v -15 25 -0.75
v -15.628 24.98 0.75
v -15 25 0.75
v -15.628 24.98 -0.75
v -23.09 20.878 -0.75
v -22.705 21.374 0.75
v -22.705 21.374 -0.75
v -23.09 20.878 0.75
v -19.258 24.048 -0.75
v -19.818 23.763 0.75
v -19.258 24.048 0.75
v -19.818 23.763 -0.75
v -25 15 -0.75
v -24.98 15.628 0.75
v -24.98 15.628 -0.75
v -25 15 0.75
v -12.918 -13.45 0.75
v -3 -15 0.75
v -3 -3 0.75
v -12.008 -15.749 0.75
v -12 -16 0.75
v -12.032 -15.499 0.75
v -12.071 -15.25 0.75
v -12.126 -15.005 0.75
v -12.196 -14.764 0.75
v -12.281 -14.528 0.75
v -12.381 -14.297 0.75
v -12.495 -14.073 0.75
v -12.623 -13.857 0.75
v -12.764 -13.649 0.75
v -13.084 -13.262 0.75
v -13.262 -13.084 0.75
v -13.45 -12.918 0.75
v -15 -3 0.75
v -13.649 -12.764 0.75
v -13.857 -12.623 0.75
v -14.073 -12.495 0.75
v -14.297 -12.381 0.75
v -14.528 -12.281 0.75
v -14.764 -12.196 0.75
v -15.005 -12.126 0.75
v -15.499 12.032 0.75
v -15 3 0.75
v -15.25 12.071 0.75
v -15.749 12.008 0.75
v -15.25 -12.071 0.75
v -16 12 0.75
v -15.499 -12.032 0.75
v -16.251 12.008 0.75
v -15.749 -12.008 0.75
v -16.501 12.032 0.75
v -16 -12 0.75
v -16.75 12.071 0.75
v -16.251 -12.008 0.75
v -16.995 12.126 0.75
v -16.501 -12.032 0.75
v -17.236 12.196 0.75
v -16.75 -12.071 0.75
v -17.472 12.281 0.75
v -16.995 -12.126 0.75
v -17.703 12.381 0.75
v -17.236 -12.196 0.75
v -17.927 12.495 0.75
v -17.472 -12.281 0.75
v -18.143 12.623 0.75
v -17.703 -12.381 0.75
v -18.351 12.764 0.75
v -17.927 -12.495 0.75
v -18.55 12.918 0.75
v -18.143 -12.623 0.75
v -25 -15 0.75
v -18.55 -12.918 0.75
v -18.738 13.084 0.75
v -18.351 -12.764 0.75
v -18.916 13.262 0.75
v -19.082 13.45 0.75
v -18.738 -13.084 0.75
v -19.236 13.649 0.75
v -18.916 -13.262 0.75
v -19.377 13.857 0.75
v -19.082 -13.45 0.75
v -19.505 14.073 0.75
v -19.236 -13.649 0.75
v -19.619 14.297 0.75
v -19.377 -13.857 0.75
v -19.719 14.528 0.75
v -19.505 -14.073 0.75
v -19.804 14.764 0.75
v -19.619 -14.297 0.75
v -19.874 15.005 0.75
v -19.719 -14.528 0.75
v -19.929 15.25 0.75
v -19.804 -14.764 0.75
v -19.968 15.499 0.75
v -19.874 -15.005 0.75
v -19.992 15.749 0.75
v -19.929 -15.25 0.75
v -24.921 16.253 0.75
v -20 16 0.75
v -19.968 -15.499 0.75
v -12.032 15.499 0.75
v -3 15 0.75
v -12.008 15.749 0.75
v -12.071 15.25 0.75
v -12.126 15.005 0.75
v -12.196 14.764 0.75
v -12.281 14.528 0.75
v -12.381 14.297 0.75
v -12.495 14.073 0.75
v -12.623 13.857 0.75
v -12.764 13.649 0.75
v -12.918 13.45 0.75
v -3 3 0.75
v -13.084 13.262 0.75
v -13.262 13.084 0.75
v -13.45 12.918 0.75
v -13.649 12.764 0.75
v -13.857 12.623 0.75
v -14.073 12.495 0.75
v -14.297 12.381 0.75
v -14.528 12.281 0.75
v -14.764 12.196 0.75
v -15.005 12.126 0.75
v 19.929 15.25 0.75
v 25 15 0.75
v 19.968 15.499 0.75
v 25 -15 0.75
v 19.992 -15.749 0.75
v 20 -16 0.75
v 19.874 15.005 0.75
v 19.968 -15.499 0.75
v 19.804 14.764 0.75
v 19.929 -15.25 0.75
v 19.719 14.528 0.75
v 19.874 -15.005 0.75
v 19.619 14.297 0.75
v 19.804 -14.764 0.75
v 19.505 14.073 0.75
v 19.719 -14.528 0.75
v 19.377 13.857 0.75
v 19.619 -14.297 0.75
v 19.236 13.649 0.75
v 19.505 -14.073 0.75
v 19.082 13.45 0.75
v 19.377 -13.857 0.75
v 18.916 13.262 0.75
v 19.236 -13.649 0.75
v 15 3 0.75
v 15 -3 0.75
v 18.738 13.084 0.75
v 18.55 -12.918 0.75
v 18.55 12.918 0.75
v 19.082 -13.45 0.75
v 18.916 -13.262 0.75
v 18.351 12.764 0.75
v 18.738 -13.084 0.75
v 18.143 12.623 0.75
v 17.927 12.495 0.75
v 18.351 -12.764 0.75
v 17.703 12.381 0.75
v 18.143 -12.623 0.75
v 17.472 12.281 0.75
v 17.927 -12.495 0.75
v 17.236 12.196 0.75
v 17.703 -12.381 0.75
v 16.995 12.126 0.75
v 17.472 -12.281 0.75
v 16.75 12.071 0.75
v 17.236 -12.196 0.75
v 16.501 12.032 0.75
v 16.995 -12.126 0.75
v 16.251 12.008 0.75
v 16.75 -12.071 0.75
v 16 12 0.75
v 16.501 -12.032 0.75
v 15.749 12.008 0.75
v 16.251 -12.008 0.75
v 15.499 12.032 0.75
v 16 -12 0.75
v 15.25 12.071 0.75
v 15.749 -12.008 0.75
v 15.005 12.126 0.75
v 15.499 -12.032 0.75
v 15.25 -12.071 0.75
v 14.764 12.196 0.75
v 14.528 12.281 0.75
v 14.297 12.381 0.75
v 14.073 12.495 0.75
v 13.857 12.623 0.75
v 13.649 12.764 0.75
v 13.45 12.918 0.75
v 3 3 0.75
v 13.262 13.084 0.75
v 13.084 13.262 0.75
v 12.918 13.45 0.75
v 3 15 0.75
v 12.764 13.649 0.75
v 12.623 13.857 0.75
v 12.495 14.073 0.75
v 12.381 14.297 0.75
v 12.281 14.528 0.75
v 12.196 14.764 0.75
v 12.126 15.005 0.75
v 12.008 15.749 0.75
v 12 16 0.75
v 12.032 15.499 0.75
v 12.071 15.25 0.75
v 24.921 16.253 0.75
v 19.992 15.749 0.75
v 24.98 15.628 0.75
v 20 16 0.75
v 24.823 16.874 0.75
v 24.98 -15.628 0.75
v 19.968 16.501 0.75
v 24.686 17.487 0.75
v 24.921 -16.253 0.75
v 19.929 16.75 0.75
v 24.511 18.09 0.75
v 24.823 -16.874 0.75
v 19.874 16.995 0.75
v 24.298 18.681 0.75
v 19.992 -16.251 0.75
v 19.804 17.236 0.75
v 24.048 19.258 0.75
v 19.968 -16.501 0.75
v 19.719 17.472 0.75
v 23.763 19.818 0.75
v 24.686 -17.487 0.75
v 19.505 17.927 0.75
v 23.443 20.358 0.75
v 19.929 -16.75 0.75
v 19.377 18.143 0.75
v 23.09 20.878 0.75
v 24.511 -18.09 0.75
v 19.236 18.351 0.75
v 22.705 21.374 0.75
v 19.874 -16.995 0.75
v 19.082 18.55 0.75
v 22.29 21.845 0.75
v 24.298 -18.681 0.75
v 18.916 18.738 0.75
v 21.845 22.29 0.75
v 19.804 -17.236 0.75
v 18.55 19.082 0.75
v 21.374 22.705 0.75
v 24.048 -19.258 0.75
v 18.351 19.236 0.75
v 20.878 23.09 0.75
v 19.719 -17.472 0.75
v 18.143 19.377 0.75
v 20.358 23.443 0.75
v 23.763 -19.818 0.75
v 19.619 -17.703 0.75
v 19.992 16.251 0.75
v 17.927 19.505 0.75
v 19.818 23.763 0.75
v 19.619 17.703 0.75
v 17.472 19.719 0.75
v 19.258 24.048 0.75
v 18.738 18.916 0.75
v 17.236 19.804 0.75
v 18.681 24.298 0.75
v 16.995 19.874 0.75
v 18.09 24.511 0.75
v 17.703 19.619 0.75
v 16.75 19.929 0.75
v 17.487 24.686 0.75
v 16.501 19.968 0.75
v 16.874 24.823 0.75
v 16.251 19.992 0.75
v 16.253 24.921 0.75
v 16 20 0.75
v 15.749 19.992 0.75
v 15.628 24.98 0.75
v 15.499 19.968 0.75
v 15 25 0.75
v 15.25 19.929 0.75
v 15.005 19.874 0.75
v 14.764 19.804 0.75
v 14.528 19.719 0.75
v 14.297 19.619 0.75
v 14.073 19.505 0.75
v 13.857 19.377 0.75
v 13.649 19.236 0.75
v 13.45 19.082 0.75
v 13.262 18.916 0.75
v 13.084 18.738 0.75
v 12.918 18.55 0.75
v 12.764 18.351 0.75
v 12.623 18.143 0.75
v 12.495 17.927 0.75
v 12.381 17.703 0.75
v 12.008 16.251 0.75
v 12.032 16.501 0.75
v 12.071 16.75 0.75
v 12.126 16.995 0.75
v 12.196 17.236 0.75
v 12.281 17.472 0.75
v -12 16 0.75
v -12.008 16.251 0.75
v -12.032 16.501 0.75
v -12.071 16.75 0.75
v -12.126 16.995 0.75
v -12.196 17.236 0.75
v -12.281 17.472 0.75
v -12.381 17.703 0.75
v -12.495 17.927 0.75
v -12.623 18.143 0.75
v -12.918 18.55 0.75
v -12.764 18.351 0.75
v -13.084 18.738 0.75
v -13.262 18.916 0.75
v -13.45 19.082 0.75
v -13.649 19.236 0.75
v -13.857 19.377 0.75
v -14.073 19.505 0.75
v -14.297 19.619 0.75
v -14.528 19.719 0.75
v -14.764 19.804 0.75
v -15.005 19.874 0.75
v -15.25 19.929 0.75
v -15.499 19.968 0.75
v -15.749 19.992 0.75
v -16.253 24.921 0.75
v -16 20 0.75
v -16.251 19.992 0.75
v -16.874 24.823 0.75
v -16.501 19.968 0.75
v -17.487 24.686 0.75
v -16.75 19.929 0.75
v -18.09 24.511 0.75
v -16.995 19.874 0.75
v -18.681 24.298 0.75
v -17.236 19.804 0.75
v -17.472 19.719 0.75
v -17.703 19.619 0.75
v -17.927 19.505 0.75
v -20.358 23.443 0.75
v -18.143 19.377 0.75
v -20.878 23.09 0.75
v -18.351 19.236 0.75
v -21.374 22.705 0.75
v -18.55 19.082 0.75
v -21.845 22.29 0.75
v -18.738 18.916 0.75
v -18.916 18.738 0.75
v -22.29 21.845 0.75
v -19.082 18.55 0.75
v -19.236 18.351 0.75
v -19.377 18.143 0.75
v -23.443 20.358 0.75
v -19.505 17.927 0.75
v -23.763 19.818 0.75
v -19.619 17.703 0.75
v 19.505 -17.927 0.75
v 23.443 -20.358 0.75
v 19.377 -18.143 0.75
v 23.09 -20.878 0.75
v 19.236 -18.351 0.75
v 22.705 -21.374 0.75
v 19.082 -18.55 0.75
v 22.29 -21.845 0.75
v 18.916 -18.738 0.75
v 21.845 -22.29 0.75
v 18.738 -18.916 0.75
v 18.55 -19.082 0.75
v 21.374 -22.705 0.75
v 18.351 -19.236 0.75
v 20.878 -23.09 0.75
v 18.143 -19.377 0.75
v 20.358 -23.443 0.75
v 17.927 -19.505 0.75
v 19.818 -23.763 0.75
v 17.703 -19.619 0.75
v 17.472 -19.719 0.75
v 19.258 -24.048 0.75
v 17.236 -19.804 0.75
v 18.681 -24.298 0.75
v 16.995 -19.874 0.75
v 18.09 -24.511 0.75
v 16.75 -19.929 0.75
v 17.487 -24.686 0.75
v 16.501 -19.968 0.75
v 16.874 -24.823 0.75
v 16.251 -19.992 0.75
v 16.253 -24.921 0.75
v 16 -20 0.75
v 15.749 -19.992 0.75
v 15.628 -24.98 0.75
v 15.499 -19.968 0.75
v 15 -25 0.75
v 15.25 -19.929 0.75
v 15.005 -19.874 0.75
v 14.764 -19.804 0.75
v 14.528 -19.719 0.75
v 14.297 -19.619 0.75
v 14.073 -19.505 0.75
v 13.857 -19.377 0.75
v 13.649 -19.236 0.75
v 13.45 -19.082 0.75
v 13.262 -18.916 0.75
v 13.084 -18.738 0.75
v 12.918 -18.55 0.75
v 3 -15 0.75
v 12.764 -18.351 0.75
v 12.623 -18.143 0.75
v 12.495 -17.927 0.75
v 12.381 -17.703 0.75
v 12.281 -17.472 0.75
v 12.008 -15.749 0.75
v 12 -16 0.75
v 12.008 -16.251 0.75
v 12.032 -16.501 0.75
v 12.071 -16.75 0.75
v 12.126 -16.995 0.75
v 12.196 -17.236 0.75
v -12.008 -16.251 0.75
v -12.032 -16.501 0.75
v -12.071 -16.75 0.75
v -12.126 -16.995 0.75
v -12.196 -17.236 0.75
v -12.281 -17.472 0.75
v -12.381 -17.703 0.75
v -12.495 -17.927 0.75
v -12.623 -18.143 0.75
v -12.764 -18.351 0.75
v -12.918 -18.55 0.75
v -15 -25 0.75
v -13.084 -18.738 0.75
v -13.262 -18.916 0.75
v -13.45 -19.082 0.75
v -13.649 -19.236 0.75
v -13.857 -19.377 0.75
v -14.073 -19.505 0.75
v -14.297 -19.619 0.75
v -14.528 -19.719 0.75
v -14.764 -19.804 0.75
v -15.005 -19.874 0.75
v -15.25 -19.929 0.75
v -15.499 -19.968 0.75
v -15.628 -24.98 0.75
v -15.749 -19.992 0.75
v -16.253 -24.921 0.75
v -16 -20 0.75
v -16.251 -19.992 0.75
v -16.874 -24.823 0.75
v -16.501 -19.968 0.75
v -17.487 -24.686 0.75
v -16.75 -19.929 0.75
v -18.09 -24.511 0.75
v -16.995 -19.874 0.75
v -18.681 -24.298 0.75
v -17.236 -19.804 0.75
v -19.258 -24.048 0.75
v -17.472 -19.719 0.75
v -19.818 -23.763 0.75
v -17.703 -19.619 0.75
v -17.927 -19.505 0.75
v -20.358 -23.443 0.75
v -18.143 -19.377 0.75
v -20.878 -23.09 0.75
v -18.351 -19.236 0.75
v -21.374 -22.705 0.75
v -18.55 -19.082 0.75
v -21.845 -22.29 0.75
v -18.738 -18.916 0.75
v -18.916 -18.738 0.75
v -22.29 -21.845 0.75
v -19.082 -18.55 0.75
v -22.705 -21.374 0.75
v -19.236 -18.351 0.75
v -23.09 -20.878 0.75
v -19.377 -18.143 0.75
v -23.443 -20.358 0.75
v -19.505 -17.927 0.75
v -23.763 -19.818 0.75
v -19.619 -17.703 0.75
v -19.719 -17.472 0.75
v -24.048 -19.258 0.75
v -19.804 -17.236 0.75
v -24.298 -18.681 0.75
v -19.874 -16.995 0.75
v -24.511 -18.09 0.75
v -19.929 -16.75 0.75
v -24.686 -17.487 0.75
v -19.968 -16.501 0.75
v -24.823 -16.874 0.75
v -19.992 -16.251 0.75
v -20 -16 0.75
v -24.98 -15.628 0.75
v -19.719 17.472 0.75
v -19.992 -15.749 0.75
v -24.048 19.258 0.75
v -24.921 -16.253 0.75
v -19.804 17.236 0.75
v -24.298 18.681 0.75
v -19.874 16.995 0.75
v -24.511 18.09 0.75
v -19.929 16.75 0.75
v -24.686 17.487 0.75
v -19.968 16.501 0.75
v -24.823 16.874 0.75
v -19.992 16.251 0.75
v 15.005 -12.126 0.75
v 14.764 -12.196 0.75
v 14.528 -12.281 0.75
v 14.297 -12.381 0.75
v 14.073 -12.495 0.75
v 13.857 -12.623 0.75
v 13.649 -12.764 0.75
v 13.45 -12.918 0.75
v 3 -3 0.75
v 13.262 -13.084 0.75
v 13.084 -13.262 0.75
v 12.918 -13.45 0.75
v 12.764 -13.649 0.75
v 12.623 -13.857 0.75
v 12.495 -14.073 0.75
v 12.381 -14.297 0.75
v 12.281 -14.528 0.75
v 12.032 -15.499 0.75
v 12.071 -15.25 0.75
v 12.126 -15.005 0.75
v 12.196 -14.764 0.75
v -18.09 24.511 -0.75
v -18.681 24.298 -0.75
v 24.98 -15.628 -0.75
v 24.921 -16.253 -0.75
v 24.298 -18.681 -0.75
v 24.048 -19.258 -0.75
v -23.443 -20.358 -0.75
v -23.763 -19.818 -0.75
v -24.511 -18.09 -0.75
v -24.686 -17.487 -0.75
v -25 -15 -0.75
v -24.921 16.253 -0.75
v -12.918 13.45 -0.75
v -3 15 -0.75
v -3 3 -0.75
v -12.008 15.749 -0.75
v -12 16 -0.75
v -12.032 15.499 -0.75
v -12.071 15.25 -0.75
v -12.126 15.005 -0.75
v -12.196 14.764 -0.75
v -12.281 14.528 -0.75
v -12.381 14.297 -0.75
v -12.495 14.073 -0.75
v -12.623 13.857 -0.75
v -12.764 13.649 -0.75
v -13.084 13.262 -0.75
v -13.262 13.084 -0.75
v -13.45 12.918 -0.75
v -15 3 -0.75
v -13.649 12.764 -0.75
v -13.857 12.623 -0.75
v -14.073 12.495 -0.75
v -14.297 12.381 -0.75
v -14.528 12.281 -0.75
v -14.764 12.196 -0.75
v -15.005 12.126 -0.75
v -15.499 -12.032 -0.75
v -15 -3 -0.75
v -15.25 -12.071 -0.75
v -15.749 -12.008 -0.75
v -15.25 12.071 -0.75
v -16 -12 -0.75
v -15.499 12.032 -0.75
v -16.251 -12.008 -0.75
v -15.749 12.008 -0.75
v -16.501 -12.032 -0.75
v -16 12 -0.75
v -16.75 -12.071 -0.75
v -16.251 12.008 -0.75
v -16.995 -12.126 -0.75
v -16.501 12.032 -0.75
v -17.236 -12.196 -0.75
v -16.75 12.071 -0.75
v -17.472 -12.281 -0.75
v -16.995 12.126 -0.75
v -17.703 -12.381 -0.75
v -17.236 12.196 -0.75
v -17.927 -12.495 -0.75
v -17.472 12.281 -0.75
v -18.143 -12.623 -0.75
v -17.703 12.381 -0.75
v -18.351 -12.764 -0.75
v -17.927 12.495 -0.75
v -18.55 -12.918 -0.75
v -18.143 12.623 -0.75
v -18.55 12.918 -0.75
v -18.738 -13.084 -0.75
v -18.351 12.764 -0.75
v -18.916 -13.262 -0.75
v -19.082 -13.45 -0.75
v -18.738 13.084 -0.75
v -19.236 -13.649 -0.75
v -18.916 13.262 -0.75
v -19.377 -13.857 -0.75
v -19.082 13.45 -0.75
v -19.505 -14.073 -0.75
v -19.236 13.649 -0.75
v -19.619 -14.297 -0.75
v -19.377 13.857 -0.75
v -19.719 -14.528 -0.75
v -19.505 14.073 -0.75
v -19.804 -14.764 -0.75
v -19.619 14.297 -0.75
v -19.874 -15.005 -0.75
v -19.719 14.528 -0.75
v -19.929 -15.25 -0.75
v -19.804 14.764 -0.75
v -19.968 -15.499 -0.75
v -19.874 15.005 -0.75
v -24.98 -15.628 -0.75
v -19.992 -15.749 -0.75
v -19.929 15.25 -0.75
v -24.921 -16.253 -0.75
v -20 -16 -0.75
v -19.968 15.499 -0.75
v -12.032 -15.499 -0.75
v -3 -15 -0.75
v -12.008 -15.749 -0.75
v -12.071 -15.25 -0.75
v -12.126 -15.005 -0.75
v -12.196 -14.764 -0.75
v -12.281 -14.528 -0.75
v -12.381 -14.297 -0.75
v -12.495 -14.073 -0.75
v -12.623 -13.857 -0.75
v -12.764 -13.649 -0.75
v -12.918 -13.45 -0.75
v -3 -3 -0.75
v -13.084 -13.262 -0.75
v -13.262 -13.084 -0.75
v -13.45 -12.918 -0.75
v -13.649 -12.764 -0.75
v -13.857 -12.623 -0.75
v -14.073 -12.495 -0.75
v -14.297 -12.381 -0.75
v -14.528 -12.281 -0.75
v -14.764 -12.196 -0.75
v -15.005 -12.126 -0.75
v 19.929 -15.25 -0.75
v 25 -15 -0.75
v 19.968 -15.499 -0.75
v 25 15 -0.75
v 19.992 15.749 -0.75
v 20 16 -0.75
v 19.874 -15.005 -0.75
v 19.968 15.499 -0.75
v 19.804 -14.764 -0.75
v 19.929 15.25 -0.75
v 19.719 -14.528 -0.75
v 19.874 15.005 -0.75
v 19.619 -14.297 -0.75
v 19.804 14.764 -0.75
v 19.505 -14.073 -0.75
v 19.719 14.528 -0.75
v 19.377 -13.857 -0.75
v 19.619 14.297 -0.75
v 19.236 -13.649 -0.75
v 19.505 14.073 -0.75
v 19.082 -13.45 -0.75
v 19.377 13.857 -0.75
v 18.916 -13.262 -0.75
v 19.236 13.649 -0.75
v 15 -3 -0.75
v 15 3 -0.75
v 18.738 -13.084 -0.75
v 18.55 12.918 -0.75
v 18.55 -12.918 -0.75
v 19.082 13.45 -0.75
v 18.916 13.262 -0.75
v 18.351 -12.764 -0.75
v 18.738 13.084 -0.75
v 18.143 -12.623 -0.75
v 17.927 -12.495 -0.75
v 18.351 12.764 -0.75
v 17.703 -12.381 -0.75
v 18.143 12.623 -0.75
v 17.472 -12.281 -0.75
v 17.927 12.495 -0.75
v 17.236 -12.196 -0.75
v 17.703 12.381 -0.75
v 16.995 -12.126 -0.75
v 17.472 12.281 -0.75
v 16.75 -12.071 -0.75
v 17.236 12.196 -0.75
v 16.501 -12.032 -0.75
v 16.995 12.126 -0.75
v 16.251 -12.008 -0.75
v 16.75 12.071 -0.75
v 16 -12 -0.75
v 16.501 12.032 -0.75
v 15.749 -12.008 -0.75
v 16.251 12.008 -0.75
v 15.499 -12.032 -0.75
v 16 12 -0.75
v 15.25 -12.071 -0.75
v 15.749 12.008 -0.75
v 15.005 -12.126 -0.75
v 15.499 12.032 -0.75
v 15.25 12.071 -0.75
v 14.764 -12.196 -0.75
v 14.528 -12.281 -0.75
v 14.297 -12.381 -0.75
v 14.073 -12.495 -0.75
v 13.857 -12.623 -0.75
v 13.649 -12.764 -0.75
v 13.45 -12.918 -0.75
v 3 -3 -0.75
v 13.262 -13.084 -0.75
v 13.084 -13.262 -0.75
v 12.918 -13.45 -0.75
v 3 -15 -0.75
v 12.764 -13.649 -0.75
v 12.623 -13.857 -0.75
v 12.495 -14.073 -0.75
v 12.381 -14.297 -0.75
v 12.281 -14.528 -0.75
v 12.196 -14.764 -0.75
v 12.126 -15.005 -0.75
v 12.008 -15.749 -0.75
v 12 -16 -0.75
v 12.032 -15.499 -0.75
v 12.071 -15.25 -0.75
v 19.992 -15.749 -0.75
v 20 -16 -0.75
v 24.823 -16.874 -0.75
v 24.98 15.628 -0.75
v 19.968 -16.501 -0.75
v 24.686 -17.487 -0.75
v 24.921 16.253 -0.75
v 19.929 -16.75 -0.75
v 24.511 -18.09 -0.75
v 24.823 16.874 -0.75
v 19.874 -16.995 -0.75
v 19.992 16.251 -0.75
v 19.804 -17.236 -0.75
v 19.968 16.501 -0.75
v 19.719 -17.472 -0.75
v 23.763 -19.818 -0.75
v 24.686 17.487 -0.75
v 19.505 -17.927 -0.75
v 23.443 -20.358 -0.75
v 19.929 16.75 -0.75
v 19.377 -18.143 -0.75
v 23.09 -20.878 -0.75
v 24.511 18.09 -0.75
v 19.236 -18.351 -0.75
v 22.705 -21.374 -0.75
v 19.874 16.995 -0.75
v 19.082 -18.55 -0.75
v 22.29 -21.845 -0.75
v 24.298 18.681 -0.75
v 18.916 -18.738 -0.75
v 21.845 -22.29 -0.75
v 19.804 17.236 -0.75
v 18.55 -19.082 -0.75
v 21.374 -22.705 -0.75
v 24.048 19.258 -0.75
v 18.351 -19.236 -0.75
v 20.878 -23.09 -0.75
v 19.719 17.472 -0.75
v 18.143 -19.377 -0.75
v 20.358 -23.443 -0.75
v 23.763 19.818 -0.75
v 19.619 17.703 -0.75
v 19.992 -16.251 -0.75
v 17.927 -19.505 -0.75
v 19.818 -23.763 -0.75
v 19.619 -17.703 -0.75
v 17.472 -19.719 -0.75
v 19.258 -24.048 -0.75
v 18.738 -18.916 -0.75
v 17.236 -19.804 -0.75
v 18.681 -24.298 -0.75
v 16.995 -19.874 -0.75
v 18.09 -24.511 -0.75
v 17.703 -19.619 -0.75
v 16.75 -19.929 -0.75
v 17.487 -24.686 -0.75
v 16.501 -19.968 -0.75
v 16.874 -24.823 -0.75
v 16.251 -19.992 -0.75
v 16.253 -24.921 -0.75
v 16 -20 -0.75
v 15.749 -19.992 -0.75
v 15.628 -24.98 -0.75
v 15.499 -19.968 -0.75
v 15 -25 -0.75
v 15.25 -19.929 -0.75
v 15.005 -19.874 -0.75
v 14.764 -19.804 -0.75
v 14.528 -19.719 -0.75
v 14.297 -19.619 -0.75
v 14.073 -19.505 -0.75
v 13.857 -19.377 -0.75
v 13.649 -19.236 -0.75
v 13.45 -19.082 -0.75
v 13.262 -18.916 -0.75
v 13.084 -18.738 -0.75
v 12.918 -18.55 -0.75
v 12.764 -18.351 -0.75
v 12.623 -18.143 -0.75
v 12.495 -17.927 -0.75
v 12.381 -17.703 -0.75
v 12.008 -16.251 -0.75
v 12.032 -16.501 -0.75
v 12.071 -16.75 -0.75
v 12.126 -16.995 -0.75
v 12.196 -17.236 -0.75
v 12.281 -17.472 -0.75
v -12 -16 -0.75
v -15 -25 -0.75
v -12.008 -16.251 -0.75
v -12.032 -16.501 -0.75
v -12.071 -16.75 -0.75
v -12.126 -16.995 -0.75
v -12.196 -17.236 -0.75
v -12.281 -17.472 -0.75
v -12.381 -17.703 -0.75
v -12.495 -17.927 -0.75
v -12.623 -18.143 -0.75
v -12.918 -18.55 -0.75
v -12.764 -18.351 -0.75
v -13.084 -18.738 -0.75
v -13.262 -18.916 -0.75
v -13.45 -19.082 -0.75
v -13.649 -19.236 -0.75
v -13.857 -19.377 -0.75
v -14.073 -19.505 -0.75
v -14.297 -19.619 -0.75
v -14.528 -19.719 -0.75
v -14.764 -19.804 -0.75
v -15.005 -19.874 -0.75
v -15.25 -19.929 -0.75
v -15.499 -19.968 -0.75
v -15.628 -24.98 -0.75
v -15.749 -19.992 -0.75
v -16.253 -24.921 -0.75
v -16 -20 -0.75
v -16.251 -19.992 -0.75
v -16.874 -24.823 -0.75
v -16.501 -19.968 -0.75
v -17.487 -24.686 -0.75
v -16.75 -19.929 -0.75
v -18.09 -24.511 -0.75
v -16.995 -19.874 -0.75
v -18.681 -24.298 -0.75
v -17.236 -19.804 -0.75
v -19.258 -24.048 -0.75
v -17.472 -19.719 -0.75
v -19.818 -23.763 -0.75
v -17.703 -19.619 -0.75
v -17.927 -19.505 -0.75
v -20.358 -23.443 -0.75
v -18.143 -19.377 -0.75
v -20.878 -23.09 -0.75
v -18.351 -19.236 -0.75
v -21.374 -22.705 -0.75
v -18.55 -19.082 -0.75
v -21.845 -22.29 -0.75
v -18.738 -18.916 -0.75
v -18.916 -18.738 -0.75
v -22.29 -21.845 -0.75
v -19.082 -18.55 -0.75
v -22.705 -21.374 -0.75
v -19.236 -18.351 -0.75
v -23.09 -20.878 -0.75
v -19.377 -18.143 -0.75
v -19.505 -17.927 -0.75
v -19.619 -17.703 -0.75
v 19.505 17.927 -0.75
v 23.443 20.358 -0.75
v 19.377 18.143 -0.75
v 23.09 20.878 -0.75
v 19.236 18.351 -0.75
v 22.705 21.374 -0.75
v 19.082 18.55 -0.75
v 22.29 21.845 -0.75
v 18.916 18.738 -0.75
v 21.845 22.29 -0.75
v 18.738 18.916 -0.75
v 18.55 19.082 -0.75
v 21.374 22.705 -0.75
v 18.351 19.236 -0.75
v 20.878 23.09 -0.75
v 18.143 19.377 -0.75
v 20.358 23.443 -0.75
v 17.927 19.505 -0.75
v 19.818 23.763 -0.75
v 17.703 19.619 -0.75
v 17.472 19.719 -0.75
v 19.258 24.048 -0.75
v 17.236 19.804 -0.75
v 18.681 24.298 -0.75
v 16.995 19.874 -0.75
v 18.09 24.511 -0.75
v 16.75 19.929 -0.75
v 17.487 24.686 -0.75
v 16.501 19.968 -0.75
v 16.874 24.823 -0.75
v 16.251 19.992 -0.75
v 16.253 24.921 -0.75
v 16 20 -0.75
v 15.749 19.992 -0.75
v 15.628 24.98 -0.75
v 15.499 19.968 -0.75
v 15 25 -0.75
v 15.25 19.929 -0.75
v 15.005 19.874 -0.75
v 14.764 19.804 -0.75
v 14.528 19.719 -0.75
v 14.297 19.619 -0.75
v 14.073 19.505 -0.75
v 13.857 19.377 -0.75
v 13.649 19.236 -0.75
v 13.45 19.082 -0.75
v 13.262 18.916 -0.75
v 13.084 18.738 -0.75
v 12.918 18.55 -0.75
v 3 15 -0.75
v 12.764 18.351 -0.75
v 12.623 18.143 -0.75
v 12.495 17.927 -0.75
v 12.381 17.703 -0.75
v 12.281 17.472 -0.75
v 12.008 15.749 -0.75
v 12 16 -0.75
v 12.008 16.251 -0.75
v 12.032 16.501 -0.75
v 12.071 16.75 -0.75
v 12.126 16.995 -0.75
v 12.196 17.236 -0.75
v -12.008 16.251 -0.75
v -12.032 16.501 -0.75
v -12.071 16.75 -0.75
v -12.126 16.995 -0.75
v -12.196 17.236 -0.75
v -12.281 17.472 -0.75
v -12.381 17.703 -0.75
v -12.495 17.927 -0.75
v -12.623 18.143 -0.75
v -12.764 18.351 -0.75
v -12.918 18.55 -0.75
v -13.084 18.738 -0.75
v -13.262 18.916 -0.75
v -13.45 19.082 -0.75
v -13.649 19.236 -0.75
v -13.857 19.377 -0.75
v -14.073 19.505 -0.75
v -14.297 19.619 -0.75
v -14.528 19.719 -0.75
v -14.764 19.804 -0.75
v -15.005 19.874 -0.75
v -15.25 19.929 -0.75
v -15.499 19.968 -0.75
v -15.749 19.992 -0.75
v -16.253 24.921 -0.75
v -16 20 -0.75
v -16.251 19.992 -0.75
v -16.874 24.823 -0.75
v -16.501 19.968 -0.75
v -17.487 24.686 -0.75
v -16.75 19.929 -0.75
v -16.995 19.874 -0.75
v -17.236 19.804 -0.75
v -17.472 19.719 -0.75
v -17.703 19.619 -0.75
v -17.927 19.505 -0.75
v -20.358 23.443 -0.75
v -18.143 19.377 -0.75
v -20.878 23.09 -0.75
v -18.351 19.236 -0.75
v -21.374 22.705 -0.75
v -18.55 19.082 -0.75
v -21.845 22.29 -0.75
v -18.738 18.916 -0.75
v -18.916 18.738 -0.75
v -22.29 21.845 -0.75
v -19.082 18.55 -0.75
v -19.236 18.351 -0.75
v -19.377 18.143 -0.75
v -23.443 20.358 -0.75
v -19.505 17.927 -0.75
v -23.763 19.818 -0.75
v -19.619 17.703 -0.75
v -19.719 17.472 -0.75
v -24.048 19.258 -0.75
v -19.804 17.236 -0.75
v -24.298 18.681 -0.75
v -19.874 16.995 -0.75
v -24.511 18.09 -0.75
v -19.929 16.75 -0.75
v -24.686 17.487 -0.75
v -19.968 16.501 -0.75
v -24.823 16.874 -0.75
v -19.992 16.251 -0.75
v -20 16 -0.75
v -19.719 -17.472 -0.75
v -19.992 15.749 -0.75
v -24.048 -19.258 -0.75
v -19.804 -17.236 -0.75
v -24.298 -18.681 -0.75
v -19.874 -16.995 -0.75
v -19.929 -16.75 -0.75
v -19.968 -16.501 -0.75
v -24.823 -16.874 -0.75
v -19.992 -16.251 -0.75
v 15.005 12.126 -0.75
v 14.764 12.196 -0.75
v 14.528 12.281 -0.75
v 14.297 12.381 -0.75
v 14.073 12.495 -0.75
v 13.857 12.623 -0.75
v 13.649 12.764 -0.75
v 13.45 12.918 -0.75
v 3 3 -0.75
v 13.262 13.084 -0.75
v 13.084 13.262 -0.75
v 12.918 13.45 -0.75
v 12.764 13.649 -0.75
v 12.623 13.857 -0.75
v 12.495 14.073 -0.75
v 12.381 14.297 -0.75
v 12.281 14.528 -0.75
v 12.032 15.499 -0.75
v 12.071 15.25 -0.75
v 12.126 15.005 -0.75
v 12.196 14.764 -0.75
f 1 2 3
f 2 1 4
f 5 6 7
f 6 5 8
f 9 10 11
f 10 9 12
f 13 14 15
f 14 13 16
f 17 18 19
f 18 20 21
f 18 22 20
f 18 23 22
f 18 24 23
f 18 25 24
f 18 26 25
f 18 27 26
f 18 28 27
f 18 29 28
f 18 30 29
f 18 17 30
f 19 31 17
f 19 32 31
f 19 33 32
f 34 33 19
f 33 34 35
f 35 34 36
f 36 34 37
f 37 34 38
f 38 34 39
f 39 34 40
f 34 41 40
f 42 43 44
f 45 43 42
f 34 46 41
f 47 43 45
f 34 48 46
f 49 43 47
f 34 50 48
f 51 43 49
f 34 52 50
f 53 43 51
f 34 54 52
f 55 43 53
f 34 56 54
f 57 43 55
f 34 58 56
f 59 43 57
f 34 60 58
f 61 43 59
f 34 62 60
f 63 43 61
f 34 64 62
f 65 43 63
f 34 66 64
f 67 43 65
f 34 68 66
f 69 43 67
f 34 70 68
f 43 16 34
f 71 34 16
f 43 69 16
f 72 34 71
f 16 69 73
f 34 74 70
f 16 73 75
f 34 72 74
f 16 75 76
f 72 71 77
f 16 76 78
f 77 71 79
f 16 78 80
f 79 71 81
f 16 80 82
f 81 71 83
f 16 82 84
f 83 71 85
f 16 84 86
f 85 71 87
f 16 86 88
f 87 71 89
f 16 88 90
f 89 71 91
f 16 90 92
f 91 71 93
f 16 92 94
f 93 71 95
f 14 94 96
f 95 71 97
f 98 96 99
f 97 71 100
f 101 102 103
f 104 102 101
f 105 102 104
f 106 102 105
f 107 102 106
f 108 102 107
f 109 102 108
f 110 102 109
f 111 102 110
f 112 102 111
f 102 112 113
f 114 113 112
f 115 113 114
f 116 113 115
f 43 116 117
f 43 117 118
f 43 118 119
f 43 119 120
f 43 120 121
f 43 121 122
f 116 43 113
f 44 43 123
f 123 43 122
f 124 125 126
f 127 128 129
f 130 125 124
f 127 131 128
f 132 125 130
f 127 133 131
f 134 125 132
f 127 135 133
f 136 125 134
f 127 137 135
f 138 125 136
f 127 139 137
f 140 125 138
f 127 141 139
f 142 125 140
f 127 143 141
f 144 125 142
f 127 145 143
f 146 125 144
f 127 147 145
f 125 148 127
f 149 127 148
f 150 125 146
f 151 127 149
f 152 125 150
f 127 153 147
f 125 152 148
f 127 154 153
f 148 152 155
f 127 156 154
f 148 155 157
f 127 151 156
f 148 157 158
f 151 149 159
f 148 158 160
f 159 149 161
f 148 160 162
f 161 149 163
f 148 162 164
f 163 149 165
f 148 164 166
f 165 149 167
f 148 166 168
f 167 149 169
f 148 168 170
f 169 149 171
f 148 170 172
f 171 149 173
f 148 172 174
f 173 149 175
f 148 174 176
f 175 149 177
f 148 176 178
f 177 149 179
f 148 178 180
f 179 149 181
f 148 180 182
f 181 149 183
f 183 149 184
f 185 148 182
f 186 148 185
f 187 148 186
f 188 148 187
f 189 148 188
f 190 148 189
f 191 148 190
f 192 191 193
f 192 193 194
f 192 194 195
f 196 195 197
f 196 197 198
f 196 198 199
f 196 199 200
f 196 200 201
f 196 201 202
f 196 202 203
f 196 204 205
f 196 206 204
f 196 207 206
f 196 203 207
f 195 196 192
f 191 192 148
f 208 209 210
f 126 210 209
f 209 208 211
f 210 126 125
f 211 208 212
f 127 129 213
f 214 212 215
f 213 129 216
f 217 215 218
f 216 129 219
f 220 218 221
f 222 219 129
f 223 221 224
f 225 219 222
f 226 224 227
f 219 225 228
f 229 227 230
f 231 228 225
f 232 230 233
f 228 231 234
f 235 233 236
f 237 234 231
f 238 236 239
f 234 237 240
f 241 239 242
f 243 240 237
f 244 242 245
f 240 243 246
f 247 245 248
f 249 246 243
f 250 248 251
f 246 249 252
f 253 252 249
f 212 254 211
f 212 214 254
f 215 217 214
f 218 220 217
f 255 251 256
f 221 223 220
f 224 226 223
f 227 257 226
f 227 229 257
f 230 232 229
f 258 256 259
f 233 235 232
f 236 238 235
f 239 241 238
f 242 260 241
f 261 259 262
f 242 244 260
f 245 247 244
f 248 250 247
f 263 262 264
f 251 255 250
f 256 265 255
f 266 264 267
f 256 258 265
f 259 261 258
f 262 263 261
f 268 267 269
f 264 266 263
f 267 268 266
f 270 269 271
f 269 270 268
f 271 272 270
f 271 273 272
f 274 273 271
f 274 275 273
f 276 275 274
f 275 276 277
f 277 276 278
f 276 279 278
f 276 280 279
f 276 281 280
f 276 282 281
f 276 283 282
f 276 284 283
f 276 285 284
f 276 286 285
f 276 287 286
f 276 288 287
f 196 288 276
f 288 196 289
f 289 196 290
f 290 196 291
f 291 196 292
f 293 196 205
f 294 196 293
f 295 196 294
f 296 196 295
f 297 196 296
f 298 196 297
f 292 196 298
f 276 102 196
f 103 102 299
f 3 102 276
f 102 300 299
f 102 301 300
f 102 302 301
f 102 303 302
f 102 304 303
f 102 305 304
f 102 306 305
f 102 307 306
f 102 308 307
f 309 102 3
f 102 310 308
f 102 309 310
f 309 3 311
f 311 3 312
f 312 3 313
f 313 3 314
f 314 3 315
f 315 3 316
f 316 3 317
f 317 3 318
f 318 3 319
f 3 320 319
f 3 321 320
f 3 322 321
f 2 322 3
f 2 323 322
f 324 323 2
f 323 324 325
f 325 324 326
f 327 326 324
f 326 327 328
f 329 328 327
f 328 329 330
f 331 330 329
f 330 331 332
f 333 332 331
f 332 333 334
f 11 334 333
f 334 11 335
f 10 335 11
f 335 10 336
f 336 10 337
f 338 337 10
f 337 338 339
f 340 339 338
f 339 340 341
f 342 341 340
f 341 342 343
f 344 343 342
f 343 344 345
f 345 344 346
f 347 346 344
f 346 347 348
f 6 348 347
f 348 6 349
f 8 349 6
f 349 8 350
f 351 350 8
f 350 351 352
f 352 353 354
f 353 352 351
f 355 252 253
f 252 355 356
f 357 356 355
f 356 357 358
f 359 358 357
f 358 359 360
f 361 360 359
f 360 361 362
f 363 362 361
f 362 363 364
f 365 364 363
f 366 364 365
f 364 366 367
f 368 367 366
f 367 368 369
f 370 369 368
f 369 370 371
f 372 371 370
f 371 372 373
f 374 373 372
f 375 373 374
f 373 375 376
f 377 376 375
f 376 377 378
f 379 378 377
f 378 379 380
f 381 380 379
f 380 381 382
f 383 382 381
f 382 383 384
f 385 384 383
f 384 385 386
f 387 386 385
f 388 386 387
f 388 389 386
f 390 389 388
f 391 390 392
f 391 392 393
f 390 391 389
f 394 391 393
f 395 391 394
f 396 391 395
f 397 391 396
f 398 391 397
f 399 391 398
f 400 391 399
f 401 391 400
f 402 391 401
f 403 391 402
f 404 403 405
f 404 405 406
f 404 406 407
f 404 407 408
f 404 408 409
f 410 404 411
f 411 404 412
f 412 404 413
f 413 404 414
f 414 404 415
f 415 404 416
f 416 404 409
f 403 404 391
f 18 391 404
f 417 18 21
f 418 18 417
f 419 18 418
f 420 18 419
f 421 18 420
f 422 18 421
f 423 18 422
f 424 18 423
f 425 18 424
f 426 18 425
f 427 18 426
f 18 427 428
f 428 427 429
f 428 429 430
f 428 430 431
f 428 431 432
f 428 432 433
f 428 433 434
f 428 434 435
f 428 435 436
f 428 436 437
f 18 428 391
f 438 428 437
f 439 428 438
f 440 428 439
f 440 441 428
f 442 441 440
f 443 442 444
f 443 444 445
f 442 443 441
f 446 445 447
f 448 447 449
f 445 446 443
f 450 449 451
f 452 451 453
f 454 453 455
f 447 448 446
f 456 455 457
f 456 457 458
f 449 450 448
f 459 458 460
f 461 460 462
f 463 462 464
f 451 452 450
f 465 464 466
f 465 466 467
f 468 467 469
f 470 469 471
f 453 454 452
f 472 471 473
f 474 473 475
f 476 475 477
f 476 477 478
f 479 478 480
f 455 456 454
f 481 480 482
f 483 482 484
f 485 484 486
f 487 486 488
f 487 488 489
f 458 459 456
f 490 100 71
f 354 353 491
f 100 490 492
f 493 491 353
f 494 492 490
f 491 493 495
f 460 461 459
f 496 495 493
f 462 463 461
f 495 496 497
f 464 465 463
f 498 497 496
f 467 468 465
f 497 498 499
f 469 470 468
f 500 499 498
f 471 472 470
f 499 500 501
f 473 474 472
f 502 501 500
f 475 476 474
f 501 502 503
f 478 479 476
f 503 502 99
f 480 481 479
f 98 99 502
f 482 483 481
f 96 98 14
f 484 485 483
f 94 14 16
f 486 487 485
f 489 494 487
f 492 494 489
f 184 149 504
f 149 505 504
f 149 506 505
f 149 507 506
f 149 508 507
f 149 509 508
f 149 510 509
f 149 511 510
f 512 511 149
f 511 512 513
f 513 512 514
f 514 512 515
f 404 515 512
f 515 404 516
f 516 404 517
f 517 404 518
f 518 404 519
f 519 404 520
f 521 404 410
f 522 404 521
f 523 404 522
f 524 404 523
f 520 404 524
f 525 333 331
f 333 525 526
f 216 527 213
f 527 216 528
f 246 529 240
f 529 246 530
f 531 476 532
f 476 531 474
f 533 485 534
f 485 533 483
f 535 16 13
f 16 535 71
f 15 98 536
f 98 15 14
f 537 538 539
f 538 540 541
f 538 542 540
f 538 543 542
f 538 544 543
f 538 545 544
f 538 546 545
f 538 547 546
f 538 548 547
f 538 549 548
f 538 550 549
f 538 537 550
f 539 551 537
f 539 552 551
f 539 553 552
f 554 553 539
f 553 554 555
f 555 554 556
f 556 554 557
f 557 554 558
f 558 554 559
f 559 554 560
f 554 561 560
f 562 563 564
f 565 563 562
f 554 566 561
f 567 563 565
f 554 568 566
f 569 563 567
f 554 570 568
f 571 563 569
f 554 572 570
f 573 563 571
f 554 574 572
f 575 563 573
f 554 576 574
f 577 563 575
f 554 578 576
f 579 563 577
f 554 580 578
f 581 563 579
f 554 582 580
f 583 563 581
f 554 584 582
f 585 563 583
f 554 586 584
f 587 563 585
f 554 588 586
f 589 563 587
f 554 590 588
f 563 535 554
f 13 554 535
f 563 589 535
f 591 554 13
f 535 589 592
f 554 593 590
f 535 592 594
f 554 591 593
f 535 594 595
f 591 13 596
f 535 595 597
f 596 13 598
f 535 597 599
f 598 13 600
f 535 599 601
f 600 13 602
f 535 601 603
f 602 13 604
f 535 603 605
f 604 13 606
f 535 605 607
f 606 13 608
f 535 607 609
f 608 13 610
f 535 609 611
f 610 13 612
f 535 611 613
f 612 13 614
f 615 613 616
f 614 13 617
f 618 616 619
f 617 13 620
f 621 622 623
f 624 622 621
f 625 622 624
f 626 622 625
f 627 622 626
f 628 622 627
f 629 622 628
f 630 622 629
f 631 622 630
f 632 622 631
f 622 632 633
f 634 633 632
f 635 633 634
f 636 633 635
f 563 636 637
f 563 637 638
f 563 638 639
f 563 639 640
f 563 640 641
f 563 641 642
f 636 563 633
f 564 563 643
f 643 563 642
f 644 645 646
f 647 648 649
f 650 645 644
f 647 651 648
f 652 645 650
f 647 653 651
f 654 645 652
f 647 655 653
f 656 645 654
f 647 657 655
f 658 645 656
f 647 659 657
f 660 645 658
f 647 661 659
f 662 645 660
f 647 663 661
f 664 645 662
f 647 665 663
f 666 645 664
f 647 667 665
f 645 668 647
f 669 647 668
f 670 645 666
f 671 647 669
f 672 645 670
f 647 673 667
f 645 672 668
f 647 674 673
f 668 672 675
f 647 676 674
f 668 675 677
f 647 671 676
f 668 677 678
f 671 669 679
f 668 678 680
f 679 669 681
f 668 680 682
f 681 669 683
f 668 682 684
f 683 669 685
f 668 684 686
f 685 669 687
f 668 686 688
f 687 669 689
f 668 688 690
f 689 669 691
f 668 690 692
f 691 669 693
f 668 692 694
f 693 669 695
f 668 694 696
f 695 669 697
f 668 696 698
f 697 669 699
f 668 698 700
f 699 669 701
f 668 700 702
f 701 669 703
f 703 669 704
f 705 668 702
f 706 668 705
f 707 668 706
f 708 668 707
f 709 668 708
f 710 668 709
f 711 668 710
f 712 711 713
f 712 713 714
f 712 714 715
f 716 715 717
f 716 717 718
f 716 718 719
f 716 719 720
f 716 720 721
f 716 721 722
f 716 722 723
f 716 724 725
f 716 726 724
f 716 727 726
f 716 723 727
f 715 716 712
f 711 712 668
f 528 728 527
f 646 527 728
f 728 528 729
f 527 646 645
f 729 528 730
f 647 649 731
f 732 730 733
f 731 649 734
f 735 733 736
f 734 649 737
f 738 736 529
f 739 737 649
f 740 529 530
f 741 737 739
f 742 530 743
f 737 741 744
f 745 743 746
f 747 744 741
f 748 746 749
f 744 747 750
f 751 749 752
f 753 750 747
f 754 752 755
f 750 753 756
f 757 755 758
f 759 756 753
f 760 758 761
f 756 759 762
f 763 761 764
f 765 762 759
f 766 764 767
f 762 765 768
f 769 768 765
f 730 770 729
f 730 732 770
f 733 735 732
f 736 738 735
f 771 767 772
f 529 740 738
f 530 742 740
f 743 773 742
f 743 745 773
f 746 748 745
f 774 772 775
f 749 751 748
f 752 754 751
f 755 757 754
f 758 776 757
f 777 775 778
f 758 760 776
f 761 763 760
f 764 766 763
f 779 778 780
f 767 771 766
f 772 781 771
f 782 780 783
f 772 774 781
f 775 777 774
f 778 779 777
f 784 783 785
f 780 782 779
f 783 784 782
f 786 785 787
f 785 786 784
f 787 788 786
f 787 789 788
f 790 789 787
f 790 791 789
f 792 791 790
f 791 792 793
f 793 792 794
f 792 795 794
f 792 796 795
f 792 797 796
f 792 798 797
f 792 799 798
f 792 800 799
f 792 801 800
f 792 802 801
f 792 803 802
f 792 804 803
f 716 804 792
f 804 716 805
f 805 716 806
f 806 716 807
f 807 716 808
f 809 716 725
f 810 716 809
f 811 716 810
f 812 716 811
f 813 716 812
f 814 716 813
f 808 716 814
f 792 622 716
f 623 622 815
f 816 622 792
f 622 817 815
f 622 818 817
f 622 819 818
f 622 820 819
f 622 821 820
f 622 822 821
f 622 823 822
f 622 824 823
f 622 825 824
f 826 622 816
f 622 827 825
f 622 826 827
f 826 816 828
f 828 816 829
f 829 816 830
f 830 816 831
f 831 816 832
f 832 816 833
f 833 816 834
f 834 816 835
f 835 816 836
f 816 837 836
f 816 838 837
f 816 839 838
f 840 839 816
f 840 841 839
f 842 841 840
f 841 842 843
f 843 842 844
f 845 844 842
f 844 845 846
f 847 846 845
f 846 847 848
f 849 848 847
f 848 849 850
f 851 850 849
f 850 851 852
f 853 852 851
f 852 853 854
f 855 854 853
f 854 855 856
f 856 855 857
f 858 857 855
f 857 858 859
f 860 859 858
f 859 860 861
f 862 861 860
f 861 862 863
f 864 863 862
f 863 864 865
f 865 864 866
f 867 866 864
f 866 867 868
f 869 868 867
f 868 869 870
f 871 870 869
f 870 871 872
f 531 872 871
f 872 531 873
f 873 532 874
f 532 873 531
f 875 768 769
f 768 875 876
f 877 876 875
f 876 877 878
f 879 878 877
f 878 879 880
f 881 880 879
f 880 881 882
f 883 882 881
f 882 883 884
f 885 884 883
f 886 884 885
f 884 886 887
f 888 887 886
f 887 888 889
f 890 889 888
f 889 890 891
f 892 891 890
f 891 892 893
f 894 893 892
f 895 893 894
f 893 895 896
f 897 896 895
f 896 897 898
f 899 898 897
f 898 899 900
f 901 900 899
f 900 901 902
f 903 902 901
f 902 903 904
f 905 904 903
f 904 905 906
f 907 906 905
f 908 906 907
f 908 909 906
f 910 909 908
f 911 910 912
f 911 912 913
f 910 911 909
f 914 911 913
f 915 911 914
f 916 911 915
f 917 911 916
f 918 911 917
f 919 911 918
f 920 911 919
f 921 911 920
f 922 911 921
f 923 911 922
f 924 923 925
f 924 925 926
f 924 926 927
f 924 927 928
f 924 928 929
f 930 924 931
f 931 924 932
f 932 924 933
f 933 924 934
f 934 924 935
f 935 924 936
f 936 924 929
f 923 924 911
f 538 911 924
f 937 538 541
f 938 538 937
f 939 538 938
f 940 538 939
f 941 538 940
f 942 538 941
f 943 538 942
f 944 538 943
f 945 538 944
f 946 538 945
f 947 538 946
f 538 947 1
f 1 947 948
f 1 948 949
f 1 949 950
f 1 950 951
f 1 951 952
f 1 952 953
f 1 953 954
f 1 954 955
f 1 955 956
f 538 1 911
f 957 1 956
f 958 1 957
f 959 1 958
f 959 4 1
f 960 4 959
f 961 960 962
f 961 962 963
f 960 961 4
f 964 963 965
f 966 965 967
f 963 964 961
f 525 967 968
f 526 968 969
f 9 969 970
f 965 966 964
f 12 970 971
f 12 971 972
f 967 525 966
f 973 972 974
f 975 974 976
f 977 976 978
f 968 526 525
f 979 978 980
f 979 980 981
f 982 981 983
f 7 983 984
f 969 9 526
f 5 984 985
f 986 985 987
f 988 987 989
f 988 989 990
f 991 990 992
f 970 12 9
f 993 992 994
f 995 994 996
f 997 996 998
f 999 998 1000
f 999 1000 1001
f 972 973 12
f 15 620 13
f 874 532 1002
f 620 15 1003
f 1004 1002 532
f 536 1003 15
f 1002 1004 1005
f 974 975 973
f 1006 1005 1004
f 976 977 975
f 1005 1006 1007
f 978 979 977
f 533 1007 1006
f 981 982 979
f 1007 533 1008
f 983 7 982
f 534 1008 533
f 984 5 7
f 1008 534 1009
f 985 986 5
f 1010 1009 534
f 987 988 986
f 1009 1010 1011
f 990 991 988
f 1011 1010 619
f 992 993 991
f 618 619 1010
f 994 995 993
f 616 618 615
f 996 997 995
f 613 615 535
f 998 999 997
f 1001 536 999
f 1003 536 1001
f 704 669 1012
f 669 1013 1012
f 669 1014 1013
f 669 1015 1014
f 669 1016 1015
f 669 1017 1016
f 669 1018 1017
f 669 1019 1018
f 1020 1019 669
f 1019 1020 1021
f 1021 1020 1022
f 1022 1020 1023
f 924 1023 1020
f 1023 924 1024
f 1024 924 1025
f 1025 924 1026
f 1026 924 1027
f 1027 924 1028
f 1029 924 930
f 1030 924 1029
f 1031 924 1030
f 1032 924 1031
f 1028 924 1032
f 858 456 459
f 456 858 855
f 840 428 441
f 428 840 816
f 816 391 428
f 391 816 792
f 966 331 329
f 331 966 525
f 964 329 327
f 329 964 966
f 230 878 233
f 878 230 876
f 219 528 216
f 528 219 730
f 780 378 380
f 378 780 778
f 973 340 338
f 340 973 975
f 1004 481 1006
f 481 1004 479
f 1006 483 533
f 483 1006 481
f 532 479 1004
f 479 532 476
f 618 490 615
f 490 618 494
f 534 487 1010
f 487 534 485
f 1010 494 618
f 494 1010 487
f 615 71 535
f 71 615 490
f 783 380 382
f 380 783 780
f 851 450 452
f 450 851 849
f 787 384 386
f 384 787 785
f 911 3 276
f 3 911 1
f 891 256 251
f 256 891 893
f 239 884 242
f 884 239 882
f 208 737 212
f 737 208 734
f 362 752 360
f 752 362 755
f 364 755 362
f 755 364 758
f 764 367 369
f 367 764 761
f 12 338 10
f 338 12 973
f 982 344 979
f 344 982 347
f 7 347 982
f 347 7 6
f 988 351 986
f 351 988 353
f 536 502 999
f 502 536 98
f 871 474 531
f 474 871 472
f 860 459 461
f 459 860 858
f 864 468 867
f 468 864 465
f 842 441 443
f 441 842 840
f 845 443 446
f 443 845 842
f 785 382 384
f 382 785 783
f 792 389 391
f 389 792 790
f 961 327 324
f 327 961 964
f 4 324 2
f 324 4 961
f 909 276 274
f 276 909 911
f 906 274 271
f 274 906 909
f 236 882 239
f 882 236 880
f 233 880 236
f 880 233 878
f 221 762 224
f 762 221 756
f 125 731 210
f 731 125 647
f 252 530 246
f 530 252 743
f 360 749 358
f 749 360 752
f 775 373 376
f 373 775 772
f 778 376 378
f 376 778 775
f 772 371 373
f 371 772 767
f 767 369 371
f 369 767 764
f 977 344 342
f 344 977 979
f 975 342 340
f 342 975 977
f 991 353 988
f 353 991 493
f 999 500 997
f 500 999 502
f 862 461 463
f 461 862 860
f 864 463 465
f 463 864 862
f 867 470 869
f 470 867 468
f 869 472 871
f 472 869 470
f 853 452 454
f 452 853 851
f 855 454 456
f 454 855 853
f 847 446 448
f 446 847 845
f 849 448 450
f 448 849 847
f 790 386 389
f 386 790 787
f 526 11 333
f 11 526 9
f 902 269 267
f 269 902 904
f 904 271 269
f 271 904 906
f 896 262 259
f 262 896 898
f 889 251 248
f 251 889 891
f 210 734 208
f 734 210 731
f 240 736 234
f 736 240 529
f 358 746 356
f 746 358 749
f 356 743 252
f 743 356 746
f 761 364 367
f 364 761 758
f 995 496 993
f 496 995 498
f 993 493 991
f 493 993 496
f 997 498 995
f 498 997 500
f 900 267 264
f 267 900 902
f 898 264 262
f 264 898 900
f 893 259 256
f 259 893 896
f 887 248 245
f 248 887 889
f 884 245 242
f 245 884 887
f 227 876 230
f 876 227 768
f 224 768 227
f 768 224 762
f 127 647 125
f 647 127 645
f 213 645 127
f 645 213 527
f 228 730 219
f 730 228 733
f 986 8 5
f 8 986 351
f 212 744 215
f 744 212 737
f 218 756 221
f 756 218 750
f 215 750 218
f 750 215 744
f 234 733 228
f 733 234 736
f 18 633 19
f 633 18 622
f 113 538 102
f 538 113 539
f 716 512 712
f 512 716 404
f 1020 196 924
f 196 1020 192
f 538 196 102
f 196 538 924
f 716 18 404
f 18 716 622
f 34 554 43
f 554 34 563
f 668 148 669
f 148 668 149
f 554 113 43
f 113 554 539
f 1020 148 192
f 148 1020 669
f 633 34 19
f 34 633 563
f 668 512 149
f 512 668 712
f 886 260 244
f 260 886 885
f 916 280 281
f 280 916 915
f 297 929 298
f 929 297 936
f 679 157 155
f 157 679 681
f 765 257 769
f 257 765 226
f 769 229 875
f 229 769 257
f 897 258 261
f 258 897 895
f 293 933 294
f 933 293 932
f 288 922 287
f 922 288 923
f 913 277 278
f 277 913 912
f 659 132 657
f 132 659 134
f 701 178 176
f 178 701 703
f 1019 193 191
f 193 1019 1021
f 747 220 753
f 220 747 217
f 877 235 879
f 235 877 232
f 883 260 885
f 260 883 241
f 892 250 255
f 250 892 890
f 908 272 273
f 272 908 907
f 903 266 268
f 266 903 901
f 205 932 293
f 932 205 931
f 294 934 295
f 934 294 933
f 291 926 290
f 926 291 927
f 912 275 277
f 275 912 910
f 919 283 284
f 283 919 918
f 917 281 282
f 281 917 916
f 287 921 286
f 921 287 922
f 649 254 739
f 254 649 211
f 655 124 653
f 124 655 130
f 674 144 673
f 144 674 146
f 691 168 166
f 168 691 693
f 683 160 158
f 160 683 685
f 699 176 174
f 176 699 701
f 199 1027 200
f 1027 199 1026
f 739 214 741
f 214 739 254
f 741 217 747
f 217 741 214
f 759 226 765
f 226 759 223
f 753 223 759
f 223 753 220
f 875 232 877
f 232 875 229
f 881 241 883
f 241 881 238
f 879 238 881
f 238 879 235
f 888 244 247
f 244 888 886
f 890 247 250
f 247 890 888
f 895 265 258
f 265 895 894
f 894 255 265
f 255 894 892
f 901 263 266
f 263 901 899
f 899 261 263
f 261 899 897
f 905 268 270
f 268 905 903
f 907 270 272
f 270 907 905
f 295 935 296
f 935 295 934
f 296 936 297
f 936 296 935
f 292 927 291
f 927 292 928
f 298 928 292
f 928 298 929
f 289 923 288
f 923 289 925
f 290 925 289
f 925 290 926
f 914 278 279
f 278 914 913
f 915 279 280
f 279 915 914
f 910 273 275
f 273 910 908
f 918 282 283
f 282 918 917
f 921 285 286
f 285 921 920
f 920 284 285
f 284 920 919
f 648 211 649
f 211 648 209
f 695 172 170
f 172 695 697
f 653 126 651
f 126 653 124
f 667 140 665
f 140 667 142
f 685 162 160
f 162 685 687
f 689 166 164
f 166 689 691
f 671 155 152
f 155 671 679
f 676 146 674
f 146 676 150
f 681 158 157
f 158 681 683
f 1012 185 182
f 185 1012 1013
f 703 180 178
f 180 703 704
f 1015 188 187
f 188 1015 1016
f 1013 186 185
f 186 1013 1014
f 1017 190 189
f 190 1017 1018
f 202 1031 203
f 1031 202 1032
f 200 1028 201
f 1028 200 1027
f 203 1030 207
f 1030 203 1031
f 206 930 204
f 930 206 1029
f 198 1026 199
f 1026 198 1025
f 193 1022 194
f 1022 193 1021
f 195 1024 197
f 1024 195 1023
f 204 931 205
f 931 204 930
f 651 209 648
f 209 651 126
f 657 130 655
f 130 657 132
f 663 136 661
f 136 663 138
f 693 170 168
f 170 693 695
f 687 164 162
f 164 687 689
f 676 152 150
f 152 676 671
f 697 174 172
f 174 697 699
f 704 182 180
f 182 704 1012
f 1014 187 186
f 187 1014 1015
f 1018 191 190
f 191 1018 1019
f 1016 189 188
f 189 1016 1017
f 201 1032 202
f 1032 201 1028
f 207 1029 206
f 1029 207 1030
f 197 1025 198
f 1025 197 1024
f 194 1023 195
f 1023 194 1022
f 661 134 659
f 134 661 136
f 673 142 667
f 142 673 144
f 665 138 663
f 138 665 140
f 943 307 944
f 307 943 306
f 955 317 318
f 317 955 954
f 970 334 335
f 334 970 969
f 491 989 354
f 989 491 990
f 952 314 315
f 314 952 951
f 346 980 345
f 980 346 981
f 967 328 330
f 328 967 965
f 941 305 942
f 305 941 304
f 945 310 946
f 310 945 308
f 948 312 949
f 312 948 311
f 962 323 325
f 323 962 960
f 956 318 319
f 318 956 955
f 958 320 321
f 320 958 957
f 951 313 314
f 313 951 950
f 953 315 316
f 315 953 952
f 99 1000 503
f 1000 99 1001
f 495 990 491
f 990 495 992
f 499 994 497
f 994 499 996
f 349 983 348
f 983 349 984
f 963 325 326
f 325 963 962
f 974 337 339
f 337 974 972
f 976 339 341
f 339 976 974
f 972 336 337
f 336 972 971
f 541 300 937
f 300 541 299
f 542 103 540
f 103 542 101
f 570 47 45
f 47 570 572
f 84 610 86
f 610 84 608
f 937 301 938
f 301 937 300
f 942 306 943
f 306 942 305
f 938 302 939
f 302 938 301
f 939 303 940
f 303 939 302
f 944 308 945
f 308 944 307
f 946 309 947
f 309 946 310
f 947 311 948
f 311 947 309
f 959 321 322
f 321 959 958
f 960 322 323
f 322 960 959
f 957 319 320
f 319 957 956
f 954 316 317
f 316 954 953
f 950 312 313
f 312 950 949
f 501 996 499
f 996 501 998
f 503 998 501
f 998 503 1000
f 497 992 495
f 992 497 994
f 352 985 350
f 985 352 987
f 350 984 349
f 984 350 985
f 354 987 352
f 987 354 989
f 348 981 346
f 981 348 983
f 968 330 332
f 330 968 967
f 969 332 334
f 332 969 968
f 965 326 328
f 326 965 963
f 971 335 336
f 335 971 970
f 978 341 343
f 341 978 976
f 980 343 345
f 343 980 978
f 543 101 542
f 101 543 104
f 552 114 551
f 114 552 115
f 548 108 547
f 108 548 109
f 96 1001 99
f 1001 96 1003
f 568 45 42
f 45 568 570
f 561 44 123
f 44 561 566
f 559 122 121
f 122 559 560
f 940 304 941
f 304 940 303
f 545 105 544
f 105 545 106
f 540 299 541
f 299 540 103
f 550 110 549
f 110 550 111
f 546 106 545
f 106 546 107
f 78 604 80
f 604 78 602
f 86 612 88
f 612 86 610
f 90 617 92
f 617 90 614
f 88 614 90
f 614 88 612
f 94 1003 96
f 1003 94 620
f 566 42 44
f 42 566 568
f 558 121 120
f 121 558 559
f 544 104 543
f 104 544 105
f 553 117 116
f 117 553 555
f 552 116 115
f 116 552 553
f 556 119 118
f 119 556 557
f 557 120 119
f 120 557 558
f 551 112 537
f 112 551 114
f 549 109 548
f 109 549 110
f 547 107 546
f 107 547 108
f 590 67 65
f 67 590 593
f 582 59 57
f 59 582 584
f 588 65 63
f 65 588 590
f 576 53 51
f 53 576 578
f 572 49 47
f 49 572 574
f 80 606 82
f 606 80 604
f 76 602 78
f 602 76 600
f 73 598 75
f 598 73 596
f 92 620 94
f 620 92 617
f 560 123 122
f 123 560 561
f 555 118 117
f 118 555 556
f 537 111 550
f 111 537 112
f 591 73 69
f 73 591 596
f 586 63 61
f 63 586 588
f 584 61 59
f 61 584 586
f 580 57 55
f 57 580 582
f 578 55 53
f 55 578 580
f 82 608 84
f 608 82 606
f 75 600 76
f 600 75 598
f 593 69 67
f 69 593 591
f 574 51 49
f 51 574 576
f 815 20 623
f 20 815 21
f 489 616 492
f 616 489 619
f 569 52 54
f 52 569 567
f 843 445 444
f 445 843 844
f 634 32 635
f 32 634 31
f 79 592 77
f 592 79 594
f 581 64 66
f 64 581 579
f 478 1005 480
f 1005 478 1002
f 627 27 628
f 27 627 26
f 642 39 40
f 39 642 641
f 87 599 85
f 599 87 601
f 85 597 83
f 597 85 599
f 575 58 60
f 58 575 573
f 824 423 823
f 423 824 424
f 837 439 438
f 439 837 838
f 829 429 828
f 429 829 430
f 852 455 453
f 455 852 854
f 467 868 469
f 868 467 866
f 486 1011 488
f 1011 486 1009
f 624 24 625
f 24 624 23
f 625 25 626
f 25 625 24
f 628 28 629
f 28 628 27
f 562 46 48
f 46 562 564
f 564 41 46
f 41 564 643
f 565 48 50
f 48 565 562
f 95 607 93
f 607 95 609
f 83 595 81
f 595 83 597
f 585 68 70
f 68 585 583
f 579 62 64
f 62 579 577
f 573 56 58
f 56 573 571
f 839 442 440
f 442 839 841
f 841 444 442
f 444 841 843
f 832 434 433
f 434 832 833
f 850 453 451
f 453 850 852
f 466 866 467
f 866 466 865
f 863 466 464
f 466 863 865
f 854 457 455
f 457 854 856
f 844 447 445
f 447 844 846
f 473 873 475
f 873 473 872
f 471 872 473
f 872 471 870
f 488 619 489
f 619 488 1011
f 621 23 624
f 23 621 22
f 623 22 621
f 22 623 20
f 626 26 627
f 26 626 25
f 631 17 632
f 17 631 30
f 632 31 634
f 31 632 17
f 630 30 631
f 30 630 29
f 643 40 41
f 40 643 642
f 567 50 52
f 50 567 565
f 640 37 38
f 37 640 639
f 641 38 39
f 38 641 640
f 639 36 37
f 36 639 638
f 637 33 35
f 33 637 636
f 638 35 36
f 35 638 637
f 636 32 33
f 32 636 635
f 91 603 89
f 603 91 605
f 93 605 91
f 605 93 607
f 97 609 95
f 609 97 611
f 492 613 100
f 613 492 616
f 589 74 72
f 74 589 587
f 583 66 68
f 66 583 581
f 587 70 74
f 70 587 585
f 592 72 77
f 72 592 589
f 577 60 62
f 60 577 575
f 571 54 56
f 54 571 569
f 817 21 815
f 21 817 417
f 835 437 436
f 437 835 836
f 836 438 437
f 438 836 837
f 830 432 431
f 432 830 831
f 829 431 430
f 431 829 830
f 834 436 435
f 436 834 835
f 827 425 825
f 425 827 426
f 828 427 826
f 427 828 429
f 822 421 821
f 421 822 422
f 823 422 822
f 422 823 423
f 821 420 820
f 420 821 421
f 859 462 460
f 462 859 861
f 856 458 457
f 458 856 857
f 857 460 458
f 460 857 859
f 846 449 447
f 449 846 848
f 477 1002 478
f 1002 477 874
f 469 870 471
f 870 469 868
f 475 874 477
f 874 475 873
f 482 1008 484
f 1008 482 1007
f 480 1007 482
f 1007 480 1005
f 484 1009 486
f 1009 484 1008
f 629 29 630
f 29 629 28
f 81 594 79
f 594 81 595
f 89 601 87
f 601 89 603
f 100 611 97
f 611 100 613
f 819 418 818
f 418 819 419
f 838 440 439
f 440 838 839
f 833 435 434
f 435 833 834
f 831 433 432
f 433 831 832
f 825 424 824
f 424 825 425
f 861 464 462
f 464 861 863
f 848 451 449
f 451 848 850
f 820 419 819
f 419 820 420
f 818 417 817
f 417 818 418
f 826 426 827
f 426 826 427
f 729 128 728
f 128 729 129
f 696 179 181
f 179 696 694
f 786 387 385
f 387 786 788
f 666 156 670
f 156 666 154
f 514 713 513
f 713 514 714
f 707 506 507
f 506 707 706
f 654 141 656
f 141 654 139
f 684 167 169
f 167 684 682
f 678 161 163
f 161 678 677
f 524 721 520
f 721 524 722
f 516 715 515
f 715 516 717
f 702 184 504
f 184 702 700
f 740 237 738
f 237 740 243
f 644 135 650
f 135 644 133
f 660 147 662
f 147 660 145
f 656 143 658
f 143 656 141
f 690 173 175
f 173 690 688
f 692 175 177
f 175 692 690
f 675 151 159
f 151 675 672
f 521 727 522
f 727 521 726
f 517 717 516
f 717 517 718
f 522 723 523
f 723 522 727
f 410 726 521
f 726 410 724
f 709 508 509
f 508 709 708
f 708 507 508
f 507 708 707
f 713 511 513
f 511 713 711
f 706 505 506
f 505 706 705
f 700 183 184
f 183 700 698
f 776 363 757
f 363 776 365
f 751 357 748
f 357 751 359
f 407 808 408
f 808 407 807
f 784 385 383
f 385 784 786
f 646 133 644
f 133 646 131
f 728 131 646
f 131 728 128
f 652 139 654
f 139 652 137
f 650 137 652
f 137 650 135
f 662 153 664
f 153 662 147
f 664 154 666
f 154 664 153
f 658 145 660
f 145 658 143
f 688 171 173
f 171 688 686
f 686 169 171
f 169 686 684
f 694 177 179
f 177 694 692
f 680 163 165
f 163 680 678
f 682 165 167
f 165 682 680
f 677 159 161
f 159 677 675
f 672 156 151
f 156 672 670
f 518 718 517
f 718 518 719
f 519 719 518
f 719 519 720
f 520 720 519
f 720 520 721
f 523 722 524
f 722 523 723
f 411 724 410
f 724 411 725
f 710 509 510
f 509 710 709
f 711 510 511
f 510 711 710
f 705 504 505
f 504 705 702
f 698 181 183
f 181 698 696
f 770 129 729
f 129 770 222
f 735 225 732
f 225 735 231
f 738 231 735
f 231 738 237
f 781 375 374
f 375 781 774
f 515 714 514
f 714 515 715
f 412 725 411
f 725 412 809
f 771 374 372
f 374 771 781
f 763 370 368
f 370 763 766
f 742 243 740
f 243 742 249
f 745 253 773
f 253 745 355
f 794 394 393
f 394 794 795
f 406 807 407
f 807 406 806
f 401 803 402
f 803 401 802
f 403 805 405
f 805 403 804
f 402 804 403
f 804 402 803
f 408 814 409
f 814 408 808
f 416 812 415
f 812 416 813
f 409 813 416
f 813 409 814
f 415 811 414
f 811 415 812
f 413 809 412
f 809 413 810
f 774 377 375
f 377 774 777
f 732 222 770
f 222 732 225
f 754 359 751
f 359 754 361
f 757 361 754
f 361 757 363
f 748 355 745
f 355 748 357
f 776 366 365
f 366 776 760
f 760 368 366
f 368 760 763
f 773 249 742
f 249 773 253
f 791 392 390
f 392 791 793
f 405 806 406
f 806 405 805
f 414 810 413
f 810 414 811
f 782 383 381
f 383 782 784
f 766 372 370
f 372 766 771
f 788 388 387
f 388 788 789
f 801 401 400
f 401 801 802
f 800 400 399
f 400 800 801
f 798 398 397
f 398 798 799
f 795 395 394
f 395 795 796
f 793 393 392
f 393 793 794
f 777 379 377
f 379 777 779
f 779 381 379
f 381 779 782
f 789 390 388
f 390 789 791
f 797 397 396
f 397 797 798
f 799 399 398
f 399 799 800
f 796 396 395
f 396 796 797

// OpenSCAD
// Monotonic text
//---------------------------
// Layer 0.2
// Nossle 0.4
//---------------------------
$fn=100;

difference() {
  Base();
  translate([0, 0, 0]) cube([6,30,2], center = true);
  translate([0, 0, 0]) cube([30,6,2], center = true);
  translate([16, 16, 0]) cylinder(h=10, d=8, center = true);
  translate([-16, 16, 0]) cylinder(h=10, d=8, center = true);
  translate([-16, -16, 0]) cylinder(h=10, d=8, center = true);
  translate([16, -16, 0]) cylinder(h=10, d=8, center = true);
}


module Base() {
    minkowski() {
    cube([30,30,1], center = true);
    cylinder(r=10,h=0.5, center = true);
    }
}
